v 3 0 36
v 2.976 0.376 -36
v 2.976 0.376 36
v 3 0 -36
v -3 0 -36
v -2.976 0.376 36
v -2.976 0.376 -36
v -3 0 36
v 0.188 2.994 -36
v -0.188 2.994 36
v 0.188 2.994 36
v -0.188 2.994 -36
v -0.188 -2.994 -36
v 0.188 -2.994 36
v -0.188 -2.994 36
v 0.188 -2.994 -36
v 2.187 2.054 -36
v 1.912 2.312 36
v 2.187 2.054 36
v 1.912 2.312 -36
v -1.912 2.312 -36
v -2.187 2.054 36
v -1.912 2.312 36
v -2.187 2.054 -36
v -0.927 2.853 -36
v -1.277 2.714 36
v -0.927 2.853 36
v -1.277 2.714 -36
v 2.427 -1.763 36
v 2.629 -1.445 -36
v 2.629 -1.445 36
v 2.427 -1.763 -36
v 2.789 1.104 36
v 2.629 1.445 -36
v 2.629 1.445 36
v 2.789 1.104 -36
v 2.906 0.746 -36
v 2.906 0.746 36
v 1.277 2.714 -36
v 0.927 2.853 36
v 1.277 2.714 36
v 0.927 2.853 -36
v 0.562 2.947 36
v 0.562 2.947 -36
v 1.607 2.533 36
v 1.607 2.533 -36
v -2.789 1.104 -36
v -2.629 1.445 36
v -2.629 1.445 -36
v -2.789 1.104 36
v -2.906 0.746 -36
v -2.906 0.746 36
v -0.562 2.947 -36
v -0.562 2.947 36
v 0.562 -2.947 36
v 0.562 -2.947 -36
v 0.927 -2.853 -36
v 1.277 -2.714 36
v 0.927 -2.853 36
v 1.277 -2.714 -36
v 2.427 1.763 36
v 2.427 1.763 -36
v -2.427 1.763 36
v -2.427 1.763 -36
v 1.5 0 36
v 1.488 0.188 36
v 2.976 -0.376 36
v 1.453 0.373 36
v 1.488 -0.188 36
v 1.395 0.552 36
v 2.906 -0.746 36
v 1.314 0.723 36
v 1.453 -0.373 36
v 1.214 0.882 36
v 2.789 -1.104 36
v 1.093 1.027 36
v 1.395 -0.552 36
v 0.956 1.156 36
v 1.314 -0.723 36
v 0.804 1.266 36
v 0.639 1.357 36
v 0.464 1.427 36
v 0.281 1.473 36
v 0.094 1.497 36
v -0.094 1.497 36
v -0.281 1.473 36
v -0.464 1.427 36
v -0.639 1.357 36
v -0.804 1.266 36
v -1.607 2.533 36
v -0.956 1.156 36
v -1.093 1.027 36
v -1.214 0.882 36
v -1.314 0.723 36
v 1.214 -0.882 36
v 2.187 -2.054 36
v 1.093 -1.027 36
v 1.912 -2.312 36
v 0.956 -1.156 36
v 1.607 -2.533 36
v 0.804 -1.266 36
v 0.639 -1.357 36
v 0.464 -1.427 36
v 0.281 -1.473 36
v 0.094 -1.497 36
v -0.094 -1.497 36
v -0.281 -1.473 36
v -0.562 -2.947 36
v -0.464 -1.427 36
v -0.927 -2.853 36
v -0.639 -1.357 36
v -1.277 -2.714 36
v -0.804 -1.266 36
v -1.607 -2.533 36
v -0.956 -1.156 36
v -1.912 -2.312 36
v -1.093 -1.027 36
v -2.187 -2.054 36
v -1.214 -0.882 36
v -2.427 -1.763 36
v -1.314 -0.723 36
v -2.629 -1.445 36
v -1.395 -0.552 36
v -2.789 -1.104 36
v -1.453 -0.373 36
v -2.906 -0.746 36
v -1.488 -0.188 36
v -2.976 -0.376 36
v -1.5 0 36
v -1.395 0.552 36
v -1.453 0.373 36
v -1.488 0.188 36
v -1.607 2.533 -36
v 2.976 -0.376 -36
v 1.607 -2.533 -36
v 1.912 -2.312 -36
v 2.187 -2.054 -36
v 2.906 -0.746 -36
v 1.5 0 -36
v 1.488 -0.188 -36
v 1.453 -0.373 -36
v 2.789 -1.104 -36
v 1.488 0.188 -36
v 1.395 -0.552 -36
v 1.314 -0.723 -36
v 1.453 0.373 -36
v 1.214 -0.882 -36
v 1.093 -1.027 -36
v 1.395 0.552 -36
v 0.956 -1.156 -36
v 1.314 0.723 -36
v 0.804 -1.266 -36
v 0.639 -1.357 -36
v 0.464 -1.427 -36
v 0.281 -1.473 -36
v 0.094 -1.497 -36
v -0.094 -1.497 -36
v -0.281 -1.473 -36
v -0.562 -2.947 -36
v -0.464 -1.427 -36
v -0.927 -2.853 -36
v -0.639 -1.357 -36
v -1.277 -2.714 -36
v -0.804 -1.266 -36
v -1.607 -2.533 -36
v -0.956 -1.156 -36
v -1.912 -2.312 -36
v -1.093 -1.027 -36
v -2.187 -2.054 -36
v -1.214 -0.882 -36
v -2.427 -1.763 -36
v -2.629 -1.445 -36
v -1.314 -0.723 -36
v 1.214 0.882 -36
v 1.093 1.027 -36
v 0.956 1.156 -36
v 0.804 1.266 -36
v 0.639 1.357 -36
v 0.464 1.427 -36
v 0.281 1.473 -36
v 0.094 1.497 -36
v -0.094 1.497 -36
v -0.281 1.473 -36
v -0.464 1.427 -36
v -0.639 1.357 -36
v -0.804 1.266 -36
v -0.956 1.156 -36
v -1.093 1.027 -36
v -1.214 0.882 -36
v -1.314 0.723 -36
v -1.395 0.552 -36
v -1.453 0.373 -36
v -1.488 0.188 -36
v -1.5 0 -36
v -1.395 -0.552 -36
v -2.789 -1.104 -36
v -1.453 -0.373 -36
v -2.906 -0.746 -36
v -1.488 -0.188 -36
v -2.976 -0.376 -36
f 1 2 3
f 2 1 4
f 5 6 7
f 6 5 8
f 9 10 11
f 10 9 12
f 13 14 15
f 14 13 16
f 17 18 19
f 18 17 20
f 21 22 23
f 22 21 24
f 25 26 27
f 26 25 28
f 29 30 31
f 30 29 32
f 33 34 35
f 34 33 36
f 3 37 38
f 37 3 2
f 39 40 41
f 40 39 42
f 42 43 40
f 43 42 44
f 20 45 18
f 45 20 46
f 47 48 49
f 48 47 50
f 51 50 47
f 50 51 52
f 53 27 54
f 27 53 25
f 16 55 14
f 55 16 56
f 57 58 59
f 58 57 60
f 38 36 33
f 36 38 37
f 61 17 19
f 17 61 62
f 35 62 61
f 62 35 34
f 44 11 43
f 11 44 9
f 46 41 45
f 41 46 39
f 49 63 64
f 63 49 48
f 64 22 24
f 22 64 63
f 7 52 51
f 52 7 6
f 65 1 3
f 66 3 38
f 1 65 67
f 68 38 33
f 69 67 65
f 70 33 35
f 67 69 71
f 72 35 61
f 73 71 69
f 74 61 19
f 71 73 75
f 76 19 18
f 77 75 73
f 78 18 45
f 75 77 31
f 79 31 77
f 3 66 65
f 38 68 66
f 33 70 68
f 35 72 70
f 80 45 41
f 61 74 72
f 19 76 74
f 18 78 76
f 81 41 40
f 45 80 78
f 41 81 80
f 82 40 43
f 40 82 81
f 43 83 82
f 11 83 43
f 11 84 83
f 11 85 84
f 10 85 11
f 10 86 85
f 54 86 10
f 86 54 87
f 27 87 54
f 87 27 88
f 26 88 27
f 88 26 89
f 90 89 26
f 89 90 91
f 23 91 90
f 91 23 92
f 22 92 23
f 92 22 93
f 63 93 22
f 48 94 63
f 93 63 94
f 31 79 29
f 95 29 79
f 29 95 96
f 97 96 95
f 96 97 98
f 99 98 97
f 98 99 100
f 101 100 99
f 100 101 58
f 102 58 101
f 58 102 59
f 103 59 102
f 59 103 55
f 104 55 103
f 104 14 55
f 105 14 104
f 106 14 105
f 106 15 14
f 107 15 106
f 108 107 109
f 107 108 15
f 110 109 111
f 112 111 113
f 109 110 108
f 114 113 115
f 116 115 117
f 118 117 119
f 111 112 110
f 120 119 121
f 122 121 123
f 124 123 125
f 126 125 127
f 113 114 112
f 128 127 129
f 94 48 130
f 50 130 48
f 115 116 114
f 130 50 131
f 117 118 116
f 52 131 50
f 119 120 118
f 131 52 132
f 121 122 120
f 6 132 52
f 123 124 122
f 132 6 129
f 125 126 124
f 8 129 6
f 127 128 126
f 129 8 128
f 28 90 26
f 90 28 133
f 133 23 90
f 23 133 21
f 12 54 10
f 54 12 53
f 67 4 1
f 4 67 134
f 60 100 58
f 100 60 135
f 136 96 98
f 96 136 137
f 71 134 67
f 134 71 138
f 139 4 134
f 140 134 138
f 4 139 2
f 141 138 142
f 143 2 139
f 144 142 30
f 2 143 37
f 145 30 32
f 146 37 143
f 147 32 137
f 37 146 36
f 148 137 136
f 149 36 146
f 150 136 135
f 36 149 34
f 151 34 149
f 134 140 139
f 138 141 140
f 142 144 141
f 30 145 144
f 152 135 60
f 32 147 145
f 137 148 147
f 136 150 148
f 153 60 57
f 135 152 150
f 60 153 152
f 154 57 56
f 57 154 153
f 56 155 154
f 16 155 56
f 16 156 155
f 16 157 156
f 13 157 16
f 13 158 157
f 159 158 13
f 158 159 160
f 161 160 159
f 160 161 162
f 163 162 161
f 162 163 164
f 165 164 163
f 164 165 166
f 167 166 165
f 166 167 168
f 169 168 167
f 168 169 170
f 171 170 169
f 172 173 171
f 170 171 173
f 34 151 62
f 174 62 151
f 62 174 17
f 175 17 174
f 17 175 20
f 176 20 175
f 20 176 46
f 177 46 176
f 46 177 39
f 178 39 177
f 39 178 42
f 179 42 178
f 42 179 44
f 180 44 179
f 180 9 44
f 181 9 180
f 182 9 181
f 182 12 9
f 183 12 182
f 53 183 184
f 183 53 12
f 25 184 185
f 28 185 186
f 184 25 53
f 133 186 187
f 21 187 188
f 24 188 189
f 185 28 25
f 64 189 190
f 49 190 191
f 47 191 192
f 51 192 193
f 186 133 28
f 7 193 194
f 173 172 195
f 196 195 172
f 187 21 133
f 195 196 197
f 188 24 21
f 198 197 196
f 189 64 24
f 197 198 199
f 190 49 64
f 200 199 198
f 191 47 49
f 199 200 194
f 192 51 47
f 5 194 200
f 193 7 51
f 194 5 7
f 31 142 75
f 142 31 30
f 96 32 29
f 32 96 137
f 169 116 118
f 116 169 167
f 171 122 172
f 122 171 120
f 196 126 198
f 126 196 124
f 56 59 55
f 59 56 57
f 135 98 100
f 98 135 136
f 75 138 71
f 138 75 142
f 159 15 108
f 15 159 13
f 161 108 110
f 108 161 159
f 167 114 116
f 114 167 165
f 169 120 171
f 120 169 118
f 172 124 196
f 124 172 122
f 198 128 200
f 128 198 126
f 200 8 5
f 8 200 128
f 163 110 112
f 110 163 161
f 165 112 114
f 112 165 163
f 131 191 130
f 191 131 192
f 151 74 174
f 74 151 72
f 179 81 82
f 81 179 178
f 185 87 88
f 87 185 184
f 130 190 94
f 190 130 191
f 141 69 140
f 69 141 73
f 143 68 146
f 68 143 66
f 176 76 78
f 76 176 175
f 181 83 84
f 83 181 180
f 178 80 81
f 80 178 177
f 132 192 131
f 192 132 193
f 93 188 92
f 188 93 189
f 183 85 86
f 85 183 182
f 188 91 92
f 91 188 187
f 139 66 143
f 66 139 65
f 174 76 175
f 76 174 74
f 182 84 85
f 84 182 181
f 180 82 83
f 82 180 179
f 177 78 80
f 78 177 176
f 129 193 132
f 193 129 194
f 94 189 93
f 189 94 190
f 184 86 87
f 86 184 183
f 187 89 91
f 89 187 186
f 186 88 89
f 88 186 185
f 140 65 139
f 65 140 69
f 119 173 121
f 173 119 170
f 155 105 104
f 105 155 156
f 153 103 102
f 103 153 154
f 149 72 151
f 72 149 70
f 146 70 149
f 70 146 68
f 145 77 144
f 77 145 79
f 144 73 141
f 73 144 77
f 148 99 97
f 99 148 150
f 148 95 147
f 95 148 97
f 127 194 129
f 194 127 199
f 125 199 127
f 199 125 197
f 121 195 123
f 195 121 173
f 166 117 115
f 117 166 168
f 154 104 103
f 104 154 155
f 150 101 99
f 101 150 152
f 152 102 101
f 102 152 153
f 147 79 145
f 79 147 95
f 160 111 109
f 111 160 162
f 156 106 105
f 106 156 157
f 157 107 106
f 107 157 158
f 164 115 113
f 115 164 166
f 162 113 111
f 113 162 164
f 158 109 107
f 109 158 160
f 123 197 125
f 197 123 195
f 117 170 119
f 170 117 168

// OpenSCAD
$fn = 50;


difference() {
	union() {
		translate(v = [0, 0, -36.0000000000]) {
			cylinder(h = 72, r = 3.0000000000);
		}
	}
	union() {
		translate(v = [0, 0, -100.0000000000]) {
			cylinder(h = 200, r = 1.5000000000);
		}
	}
}
